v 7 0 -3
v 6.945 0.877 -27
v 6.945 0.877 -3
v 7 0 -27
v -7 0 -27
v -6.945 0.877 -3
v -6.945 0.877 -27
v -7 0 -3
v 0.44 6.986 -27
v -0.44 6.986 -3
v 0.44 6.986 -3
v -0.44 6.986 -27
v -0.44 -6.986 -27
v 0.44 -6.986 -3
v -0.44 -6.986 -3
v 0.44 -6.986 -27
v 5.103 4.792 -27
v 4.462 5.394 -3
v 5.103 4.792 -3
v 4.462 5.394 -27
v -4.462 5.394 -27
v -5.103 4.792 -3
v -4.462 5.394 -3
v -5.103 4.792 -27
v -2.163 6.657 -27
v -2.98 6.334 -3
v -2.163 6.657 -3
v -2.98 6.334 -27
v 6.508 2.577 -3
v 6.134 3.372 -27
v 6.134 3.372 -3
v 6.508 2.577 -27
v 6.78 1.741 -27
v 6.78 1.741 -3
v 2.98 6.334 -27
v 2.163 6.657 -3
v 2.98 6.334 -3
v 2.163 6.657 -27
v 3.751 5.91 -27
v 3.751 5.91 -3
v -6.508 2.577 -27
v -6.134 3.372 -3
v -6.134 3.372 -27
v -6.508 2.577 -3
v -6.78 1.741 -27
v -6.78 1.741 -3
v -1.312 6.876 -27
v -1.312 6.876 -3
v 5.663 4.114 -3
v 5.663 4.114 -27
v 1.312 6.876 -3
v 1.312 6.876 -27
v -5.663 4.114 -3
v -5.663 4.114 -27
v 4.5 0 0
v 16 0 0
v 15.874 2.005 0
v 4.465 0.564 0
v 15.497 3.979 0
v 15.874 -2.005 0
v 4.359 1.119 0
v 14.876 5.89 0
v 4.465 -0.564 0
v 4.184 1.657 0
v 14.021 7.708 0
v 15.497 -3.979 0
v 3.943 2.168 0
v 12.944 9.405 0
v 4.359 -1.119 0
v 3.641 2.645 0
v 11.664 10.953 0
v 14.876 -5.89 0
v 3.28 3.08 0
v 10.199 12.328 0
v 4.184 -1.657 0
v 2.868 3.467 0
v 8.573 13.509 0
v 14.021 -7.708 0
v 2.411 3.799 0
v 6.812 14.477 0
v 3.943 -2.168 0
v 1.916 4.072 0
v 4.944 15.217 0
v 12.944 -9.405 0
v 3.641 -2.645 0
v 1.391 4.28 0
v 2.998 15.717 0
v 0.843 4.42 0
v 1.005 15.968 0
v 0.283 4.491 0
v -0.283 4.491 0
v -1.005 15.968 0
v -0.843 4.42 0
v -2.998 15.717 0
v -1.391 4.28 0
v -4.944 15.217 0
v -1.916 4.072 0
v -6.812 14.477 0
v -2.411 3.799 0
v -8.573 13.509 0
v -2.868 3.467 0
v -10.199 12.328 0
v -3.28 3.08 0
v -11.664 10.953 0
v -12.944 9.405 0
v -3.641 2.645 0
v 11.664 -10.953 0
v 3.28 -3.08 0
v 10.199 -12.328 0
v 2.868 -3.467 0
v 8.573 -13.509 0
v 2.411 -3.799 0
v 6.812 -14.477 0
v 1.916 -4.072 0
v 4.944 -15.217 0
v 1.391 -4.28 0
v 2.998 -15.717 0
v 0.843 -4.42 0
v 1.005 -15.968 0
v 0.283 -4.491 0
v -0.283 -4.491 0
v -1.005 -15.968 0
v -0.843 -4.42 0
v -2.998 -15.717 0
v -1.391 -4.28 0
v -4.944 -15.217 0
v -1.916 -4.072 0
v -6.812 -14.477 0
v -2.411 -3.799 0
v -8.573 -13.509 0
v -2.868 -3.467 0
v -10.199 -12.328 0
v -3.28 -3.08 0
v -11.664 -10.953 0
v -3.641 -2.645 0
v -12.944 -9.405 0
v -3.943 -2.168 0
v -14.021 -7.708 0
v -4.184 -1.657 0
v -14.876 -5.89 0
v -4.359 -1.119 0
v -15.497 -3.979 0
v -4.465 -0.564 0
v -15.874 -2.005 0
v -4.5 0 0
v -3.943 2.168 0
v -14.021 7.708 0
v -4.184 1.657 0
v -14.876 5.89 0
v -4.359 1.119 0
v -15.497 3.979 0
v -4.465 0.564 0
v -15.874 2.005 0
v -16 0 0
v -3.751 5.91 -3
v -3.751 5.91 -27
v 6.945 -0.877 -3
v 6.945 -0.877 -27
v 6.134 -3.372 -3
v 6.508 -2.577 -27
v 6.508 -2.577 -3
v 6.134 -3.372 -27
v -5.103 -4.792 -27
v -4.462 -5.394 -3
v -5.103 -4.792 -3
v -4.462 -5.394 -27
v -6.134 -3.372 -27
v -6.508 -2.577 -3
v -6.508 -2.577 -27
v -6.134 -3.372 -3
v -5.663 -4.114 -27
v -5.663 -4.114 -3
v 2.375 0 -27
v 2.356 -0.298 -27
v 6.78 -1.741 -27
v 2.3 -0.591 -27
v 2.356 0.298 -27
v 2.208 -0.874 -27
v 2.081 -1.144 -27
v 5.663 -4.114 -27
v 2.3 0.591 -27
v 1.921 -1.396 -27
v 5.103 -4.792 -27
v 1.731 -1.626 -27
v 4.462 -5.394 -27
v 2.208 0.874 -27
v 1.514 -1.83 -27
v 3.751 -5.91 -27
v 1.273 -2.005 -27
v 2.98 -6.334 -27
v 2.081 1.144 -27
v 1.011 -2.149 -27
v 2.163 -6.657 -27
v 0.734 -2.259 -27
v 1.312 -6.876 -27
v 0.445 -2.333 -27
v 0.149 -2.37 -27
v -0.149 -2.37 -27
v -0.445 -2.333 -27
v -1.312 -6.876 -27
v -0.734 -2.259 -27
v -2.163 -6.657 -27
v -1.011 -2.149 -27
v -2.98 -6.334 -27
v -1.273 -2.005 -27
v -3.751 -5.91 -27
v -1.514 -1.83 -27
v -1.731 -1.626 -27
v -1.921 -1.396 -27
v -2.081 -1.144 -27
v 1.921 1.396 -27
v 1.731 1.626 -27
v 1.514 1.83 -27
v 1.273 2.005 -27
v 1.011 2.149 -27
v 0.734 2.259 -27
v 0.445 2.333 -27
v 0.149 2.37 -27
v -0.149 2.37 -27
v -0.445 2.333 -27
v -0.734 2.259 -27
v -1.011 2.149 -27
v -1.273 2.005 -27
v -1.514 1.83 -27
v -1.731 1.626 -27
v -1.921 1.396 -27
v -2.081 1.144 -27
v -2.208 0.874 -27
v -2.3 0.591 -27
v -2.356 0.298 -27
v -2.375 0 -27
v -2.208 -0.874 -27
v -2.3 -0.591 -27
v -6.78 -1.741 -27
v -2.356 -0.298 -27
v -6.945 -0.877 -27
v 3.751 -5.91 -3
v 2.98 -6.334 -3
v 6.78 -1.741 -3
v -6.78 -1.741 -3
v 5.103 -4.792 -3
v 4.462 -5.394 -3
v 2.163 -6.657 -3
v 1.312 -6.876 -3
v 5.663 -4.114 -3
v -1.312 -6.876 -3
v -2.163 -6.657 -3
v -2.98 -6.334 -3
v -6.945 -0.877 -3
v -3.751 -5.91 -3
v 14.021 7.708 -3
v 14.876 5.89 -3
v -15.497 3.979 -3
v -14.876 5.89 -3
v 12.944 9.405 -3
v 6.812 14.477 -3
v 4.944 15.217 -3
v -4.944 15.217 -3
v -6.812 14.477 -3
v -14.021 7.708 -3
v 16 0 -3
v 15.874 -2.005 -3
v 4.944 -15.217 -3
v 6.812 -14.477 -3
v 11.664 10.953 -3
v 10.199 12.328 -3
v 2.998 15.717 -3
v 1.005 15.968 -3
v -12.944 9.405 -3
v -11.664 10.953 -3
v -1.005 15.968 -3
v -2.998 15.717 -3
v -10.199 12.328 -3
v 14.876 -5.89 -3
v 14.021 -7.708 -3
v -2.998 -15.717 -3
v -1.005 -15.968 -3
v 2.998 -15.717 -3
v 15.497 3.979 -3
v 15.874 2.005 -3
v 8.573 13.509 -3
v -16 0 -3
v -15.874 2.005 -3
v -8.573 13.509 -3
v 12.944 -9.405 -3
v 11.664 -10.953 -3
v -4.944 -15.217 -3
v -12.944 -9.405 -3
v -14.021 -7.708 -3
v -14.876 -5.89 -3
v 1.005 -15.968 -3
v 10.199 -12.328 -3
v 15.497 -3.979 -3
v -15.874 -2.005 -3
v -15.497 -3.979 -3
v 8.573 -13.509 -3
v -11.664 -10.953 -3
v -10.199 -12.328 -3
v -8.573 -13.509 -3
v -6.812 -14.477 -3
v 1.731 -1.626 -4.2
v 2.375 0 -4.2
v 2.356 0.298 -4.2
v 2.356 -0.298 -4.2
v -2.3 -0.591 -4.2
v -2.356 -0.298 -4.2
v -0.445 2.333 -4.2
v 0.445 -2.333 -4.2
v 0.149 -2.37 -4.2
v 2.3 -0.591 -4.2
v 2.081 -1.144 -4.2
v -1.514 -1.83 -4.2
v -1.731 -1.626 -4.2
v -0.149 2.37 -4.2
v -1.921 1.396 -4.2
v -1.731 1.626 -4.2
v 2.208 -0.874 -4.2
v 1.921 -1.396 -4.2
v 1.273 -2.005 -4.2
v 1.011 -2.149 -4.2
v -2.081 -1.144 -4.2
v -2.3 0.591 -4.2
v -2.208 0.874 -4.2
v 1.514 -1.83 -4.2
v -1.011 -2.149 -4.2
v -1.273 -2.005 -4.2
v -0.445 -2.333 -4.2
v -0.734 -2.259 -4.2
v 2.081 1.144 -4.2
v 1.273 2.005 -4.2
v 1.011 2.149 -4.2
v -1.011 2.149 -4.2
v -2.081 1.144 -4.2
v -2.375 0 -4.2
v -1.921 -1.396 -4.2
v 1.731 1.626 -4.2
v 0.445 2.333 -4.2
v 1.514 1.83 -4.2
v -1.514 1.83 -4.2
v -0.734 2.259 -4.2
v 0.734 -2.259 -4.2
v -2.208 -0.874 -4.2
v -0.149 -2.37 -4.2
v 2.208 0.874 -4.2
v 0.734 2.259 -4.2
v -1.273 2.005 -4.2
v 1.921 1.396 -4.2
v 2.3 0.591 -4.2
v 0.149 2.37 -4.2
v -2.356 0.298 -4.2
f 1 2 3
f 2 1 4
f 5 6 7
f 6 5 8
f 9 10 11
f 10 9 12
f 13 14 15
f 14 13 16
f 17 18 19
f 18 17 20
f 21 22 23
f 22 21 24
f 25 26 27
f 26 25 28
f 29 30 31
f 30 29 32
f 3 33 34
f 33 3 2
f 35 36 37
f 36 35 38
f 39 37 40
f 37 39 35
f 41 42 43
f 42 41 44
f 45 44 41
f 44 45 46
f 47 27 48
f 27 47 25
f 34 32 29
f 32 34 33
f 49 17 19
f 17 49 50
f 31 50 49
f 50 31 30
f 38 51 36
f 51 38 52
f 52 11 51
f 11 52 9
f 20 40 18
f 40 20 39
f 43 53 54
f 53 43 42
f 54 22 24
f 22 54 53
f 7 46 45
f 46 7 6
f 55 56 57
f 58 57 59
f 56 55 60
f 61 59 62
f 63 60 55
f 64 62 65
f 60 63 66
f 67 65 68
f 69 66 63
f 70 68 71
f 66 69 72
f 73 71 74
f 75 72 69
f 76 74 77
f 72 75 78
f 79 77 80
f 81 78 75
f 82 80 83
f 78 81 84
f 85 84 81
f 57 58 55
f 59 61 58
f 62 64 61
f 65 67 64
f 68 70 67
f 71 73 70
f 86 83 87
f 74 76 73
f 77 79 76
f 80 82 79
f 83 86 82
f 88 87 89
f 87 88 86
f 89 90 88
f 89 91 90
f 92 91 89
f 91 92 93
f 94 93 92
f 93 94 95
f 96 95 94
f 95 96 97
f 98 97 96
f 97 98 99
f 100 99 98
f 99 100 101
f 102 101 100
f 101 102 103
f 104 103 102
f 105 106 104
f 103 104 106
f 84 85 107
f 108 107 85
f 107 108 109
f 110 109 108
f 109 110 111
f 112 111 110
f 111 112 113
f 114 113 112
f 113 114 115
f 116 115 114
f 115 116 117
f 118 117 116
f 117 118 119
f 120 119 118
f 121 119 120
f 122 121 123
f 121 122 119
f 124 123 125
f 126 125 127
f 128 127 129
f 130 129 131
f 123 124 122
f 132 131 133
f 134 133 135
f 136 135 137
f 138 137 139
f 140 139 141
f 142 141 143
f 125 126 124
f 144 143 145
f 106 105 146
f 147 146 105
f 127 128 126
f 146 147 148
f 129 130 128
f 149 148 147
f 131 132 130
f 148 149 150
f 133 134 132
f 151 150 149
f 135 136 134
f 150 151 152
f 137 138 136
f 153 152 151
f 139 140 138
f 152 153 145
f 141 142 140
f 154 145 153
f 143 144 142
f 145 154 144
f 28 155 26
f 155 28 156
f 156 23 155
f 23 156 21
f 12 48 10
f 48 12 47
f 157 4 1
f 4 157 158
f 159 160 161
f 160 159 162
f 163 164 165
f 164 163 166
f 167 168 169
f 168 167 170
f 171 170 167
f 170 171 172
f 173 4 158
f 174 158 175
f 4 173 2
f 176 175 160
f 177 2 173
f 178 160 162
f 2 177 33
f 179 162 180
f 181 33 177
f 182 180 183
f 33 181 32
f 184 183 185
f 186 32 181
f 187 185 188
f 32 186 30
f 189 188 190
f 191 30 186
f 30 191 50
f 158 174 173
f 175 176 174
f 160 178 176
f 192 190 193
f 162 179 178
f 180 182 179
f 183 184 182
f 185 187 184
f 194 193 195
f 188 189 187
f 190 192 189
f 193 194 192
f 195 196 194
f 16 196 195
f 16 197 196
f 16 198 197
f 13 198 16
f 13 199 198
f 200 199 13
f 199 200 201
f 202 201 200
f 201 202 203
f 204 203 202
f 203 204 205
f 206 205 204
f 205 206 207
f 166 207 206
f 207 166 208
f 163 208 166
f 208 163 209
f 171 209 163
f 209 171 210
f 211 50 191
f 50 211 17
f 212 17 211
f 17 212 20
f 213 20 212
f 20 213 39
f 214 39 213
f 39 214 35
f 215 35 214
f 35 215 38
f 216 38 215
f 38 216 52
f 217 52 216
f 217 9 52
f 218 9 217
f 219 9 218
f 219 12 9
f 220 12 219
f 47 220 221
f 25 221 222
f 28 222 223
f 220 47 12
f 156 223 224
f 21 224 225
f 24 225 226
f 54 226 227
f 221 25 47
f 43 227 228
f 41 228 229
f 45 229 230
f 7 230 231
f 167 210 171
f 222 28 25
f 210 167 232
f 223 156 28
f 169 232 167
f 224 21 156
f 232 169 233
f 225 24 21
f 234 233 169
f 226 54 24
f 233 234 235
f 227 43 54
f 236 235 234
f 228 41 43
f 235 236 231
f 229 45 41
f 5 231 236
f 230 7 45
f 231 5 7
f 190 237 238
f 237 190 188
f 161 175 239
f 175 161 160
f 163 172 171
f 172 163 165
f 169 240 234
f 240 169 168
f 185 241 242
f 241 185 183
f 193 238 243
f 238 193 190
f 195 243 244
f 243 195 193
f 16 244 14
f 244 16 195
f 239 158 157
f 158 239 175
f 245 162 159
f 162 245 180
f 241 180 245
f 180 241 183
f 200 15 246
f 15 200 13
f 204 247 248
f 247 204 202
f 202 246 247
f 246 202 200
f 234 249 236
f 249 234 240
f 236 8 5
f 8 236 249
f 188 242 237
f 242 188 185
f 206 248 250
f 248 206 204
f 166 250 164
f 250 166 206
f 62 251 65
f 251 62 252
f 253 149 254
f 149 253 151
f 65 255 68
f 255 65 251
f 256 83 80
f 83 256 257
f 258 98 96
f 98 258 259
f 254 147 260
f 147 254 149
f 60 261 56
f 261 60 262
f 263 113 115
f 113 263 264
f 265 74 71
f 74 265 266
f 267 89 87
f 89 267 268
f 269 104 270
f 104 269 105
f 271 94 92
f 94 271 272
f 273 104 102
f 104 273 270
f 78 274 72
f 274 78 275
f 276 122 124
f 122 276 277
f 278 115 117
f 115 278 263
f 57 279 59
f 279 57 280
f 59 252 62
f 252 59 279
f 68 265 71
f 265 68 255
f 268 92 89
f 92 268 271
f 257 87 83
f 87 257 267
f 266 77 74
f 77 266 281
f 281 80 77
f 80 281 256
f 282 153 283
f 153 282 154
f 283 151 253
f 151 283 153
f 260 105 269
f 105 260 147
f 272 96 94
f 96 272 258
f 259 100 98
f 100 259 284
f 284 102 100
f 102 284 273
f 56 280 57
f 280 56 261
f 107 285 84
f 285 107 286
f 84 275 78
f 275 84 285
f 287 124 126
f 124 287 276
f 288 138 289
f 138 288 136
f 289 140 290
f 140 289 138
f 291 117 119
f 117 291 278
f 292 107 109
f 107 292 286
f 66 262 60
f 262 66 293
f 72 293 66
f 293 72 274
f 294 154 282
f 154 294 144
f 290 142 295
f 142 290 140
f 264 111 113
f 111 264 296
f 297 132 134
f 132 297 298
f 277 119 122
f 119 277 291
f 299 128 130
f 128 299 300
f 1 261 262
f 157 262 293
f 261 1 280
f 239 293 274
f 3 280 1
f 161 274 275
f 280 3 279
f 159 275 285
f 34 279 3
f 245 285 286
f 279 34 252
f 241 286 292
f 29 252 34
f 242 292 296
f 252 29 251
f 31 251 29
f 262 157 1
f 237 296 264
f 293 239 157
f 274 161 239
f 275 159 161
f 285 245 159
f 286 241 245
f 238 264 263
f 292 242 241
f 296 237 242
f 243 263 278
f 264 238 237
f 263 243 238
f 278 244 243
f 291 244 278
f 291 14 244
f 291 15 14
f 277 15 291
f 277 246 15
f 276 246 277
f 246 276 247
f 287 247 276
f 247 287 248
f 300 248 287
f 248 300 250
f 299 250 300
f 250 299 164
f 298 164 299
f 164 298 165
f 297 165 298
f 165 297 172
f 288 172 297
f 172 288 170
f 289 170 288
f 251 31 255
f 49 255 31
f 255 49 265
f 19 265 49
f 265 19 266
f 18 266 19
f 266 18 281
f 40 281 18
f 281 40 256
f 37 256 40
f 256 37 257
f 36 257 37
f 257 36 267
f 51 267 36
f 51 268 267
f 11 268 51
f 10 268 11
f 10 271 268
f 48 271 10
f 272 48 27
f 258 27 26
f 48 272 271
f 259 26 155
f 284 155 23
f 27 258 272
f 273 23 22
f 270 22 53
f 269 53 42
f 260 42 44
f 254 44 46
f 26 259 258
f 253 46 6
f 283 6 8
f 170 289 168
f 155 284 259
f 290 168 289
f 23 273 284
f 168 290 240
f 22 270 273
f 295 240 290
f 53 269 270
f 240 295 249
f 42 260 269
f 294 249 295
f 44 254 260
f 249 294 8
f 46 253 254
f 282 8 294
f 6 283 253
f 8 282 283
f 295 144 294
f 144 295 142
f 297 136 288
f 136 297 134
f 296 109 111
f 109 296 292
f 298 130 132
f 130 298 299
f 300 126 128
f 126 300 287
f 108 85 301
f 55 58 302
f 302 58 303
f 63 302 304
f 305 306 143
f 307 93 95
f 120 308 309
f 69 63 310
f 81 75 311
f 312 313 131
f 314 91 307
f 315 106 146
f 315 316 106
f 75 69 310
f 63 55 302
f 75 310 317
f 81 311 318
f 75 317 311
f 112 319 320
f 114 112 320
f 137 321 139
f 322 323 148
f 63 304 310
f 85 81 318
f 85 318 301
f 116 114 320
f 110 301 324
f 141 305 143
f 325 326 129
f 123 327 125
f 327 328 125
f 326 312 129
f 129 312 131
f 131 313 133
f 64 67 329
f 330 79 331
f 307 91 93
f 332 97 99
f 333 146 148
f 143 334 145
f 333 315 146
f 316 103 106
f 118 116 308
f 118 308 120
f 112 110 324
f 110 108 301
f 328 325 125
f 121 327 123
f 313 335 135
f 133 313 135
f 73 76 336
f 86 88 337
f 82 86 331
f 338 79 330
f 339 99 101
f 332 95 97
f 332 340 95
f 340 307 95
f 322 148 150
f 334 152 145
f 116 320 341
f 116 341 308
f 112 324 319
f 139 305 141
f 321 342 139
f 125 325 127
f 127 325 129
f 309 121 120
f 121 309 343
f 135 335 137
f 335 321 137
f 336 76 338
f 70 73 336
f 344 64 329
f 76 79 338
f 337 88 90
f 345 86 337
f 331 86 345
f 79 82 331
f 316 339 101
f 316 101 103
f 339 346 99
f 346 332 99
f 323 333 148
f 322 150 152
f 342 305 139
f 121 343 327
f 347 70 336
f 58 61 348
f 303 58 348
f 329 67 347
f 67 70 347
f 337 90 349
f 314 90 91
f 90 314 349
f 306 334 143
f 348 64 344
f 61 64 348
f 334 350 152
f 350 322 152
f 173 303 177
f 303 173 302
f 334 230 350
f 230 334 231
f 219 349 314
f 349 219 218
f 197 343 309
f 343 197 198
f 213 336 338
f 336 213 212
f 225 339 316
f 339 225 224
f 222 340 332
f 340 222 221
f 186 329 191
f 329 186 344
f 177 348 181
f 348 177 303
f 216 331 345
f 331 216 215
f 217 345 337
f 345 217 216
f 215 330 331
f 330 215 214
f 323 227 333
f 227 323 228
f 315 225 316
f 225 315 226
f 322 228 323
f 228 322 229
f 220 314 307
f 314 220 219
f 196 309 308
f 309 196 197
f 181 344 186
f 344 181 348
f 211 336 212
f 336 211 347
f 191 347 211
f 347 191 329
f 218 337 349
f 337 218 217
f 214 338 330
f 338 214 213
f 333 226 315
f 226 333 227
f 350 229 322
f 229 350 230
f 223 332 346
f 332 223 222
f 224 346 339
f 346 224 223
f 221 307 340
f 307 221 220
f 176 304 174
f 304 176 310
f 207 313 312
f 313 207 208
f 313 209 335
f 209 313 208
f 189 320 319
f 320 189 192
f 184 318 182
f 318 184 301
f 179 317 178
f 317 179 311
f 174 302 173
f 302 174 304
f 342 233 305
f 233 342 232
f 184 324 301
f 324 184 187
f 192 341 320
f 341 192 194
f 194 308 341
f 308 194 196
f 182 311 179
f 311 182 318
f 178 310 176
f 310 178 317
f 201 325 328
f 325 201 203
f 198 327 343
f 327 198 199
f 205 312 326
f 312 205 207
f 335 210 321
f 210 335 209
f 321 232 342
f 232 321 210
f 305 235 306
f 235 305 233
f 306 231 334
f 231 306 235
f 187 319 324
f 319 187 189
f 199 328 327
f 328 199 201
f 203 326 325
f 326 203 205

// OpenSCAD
$fn = 50;


difference() {
	union() {
		translate(v = [0, 0, -27.0000000000]) {
			cylinder(h = 27, r = 7.0000000000);
		}
		translate(v = [0, 0, -3.0000000000]) {
			cylinder(h = 3, r = 16.0000000000);
		}
	}
	union() {
		translate(v = [0, 0, 0]) {
			rotate(a = [0, 0, 0]) {
				difference() {
					union() {
						#translate(v = [0, 0, -27.0000000000]) {
							cylinder(h = 27, r = 2.2500000000);
						}
						#translate(v = [0, 0, -4.2000000000]) {
							cylinder(h = 4.2000000000, r = 7.0000000000, r1 = 2.3750000000, r2 = 4.5000000000);
						}
						#translate(v = [0, 0, -27.0000000000]) {
							cylinder(h = 27, r = 2.3750000000);
						}
						#translate(v = [0, 0, -27.0000000000]) {
							cylinder(h = 27, r = 2.2500000000);
						}
					}
					union();
				}
			}
		}
	}
}
